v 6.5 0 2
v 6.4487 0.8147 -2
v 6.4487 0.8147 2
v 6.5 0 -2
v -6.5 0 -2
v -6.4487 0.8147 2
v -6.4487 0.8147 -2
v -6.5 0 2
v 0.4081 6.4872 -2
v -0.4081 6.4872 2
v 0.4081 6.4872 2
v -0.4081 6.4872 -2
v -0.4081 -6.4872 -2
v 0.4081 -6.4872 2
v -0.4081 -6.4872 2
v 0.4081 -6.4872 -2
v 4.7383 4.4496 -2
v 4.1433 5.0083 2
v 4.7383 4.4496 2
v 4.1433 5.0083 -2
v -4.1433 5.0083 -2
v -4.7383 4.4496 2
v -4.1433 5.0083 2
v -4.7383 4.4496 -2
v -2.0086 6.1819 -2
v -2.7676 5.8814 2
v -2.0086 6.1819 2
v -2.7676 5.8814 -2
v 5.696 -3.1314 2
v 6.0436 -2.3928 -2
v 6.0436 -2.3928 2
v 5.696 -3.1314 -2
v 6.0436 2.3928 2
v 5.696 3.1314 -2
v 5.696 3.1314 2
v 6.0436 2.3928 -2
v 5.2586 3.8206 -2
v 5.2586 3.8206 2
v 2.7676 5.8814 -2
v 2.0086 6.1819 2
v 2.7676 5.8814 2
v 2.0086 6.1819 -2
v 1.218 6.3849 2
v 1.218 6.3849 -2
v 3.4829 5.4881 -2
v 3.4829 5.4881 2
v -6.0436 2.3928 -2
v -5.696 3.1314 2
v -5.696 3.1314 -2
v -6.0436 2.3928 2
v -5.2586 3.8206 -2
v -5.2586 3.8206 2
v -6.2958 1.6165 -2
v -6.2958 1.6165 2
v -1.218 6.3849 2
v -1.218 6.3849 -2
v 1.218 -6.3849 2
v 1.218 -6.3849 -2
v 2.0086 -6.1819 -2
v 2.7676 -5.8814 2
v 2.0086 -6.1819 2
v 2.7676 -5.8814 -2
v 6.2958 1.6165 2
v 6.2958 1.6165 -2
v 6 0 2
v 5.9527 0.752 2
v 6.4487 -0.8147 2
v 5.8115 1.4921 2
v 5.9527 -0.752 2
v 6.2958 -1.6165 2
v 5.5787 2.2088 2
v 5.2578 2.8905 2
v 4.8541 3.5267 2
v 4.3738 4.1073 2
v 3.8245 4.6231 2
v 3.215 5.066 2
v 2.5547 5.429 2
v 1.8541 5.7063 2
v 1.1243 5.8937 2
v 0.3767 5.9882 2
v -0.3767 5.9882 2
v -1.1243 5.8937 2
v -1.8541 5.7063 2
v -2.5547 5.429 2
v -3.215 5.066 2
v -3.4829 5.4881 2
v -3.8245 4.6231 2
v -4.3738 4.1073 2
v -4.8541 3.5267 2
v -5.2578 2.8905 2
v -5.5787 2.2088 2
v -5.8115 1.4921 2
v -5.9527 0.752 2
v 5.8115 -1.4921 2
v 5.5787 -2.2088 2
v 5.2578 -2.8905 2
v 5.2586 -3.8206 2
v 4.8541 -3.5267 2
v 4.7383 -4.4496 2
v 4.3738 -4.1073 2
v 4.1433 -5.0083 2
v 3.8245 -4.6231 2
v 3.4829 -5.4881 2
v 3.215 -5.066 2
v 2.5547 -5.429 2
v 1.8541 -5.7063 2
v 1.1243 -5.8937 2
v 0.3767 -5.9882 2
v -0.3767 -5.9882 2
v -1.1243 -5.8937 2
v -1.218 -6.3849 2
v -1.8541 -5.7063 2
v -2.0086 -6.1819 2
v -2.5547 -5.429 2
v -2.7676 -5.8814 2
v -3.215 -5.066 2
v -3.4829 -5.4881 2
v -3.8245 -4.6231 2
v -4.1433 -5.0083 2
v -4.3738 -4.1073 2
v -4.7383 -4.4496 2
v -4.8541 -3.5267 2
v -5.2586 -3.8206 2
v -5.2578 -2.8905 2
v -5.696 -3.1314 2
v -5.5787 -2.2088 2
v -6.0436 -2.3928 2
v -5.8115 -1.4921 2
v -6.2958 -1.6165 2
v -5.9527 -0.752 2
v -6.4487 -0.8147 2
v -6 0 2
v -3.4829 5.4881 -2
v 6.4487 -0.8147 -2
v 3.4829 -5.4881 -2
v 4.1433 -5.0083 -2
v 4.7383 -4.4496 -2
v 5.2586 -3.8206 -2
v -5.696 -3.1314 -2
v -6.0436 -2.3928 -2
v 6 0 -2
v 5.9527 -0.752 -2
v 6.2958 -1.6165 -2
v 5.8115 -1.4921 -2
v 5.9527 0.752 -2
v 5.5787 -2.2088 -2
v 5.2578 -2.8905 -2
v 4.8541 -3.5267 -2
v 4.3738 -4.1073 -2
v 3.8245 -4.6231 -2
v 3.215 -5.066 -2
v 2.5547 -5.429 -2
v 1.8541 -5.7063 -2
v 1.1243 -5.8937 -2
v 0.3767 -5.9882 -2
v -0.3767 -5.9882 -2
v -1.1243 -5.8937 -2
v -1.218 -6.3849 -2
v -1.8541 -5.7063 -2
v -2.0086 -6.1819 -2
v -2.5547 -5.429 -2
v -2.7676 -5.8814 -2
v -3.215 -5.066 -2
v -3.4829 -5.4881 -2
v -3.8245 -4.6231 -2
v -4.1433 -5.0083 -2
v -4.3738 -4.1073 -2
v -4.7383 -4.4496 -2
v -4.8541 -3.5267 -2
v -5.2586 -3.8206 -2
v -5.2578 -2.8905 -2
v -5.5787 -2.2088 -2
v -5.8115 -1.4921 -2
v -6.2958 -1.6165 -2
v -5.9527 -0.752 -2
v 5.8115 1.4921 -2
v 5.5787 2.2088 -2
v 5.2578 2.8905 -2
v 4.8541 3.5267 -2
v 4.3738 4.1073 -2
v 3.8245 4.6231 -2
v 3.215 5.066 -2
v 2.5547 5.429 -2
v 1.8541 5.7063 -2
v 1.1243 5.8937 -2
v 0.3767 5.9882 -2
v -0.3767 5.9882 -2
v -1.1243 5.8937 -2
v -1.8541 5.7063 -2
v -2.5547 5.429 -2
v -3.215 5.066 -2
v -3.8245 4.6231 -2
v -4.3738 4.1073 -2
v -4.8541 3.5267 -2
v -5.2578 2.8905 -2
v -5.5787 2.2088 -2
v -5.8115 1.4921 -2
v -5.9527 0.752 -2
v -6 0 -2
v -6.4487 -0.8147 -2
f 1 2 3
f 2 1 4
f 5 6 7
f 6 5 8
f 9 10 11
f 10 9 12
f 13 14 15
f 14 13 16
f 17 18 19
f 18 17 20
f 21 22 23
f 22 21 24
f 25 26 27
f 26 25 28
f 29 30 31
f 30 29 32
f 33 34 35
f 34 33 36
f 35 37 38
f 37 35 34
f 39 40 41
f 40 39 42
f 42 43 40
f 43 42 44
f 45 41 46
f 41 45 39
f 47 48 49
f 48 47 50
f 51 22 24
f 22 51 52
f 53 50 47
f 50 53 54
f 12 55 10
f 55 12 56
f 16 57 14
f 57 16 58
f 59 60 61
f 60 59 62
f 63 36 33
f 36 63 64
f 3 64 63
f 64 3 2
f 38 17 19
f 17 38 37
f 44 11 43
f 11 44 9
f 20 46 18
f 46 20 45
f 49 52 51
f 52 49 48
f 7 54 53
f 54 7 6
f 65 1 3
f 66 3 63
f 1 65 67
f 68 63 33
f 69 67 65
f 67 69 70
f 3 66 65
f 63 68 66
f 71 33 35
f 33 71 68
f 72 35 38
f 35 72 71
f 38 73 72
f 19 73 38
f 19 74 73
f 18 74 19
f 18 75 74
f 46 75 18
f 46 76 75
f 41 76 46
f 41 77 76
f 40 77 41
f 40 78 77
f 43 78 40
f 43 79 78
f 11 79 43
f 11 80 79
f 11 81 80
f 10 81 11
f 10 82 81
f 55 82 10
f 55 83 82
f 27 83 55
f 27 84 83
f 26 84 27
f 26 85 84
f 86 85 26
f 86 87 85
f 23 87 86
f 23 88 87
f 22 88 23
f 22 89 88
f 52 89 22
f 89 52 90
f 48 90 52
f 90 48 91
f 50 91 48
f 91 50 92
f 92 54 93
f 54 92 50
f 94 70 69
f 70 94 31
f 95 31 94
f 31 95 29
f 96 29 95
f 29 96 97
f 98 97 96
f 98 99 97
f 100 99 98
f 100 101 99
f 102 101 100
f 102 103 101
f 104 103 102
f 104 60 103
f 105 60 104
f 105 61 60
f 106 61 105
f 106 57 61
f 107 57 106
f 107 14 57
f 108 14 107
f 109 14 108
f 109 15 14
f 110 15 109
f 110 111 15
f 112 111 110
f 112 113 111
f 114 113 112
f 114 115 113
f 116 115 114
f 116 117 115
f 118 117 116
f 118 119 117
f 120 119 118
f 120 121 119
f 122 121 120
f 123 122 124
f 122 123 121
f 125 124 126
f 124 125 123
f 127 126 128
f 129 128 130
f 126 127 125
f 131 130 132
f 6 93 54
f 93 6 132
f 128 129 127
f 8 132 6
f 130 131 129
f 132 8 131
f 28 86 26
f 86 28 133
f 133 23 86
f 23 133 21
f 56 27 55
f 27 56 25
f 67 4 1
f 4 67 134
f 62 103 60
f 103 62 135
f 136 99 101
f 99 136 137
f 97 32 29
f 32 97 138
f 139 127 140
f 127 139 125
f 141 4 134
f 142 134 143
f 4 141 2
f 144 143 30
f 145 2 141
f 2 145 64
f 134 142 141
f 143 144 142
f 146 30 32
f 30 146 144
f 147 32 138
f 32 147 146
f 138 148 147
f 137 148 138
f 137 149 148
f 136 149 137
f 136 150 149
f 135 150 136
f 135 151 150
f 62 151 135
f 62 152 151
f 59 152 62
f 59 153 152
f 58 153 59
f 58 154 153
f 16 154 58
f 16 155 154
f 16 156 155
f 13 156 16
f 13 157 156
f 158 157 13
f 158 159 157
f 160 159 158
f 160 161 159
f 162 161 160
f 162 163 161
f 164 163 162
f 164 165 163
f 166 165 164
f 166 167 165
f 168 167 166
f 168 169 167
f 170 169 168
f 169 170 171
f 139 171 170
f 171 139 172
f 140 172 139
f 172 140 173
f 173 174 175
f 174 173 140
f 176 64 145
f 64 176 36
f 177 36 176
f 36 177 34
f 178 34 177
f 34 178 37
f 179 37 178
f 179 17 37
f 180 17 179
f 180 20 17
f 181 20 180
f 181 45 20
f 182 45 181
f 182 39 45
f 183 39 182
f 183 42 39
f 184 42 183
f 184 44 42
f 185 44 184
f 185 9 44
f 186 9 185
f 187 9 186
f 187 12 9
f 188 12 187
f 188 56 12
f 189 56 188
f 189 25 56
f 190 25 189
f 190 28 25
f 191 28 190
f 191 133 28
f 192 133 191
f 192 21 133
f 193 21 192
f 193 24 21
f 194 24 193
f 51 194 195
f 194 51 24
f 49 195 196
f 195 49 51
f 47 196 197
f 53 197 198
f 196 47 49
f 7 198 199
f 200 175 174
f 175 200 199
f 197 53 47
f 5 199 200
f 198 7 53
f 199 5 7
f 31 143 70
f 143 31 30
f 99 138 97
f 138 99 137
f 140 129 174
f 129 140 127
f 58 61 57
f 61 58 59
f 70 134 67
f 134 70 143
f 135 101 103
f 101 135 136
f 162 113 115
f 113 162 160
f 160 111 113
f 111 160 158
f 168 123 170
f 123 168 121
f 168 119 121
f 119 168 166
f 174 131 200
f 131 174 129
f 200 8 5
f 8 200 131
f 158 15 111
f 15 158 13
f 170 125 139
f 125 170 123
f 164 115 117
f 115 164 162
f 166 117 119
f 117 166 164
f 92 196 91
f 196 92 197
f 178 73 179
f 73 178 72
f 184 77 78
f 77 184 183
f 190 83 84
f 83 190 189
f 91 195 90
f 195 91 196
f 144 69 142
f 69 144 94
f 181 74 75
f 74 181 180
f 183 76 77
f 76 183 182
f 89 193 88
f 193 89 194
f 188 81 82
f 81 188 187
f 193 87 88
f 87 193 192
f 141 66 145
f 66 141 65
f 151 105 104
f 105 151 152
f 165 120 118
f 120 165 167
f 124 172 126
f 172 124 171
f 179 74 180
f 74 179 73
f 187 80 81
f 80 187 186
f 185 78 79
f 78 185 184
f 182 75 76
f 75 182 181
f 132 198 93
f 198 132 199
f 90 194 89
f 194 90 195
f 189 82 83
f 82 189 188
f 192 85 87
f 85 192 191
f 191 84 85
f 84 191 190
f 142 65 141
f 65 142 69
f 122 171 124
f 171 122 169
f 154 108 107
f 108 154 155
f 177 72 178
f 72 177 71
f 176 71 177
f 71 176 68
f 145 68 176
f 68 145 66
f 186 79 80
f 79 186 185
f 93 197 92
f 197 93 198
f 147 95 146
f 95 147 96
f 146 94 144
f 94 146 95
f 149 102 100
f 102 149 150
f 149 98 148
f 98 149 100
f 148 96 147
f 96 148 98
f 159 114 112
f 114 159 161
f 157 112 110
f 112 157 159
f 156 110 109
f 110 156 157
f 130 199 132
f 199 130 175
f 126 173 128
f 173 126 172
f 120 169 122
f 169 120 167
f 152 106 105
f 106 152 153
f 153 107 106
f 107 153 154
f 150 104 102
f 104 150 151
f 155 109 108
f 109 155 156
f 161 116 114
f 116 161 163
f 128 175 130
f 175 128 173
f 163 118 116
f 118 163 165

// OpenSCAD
$fn = 50;


difference() {
	union() {
		translate(v = [0, 0, -2.0000000000]) {
			cylinder(h = 4, r = 6.5000000000);
		}
	}
	union() {
		translate(v = [0, 0, -100.0000000000]) {
			cylinder(h = 200, r = 6);
		}
	}
}
